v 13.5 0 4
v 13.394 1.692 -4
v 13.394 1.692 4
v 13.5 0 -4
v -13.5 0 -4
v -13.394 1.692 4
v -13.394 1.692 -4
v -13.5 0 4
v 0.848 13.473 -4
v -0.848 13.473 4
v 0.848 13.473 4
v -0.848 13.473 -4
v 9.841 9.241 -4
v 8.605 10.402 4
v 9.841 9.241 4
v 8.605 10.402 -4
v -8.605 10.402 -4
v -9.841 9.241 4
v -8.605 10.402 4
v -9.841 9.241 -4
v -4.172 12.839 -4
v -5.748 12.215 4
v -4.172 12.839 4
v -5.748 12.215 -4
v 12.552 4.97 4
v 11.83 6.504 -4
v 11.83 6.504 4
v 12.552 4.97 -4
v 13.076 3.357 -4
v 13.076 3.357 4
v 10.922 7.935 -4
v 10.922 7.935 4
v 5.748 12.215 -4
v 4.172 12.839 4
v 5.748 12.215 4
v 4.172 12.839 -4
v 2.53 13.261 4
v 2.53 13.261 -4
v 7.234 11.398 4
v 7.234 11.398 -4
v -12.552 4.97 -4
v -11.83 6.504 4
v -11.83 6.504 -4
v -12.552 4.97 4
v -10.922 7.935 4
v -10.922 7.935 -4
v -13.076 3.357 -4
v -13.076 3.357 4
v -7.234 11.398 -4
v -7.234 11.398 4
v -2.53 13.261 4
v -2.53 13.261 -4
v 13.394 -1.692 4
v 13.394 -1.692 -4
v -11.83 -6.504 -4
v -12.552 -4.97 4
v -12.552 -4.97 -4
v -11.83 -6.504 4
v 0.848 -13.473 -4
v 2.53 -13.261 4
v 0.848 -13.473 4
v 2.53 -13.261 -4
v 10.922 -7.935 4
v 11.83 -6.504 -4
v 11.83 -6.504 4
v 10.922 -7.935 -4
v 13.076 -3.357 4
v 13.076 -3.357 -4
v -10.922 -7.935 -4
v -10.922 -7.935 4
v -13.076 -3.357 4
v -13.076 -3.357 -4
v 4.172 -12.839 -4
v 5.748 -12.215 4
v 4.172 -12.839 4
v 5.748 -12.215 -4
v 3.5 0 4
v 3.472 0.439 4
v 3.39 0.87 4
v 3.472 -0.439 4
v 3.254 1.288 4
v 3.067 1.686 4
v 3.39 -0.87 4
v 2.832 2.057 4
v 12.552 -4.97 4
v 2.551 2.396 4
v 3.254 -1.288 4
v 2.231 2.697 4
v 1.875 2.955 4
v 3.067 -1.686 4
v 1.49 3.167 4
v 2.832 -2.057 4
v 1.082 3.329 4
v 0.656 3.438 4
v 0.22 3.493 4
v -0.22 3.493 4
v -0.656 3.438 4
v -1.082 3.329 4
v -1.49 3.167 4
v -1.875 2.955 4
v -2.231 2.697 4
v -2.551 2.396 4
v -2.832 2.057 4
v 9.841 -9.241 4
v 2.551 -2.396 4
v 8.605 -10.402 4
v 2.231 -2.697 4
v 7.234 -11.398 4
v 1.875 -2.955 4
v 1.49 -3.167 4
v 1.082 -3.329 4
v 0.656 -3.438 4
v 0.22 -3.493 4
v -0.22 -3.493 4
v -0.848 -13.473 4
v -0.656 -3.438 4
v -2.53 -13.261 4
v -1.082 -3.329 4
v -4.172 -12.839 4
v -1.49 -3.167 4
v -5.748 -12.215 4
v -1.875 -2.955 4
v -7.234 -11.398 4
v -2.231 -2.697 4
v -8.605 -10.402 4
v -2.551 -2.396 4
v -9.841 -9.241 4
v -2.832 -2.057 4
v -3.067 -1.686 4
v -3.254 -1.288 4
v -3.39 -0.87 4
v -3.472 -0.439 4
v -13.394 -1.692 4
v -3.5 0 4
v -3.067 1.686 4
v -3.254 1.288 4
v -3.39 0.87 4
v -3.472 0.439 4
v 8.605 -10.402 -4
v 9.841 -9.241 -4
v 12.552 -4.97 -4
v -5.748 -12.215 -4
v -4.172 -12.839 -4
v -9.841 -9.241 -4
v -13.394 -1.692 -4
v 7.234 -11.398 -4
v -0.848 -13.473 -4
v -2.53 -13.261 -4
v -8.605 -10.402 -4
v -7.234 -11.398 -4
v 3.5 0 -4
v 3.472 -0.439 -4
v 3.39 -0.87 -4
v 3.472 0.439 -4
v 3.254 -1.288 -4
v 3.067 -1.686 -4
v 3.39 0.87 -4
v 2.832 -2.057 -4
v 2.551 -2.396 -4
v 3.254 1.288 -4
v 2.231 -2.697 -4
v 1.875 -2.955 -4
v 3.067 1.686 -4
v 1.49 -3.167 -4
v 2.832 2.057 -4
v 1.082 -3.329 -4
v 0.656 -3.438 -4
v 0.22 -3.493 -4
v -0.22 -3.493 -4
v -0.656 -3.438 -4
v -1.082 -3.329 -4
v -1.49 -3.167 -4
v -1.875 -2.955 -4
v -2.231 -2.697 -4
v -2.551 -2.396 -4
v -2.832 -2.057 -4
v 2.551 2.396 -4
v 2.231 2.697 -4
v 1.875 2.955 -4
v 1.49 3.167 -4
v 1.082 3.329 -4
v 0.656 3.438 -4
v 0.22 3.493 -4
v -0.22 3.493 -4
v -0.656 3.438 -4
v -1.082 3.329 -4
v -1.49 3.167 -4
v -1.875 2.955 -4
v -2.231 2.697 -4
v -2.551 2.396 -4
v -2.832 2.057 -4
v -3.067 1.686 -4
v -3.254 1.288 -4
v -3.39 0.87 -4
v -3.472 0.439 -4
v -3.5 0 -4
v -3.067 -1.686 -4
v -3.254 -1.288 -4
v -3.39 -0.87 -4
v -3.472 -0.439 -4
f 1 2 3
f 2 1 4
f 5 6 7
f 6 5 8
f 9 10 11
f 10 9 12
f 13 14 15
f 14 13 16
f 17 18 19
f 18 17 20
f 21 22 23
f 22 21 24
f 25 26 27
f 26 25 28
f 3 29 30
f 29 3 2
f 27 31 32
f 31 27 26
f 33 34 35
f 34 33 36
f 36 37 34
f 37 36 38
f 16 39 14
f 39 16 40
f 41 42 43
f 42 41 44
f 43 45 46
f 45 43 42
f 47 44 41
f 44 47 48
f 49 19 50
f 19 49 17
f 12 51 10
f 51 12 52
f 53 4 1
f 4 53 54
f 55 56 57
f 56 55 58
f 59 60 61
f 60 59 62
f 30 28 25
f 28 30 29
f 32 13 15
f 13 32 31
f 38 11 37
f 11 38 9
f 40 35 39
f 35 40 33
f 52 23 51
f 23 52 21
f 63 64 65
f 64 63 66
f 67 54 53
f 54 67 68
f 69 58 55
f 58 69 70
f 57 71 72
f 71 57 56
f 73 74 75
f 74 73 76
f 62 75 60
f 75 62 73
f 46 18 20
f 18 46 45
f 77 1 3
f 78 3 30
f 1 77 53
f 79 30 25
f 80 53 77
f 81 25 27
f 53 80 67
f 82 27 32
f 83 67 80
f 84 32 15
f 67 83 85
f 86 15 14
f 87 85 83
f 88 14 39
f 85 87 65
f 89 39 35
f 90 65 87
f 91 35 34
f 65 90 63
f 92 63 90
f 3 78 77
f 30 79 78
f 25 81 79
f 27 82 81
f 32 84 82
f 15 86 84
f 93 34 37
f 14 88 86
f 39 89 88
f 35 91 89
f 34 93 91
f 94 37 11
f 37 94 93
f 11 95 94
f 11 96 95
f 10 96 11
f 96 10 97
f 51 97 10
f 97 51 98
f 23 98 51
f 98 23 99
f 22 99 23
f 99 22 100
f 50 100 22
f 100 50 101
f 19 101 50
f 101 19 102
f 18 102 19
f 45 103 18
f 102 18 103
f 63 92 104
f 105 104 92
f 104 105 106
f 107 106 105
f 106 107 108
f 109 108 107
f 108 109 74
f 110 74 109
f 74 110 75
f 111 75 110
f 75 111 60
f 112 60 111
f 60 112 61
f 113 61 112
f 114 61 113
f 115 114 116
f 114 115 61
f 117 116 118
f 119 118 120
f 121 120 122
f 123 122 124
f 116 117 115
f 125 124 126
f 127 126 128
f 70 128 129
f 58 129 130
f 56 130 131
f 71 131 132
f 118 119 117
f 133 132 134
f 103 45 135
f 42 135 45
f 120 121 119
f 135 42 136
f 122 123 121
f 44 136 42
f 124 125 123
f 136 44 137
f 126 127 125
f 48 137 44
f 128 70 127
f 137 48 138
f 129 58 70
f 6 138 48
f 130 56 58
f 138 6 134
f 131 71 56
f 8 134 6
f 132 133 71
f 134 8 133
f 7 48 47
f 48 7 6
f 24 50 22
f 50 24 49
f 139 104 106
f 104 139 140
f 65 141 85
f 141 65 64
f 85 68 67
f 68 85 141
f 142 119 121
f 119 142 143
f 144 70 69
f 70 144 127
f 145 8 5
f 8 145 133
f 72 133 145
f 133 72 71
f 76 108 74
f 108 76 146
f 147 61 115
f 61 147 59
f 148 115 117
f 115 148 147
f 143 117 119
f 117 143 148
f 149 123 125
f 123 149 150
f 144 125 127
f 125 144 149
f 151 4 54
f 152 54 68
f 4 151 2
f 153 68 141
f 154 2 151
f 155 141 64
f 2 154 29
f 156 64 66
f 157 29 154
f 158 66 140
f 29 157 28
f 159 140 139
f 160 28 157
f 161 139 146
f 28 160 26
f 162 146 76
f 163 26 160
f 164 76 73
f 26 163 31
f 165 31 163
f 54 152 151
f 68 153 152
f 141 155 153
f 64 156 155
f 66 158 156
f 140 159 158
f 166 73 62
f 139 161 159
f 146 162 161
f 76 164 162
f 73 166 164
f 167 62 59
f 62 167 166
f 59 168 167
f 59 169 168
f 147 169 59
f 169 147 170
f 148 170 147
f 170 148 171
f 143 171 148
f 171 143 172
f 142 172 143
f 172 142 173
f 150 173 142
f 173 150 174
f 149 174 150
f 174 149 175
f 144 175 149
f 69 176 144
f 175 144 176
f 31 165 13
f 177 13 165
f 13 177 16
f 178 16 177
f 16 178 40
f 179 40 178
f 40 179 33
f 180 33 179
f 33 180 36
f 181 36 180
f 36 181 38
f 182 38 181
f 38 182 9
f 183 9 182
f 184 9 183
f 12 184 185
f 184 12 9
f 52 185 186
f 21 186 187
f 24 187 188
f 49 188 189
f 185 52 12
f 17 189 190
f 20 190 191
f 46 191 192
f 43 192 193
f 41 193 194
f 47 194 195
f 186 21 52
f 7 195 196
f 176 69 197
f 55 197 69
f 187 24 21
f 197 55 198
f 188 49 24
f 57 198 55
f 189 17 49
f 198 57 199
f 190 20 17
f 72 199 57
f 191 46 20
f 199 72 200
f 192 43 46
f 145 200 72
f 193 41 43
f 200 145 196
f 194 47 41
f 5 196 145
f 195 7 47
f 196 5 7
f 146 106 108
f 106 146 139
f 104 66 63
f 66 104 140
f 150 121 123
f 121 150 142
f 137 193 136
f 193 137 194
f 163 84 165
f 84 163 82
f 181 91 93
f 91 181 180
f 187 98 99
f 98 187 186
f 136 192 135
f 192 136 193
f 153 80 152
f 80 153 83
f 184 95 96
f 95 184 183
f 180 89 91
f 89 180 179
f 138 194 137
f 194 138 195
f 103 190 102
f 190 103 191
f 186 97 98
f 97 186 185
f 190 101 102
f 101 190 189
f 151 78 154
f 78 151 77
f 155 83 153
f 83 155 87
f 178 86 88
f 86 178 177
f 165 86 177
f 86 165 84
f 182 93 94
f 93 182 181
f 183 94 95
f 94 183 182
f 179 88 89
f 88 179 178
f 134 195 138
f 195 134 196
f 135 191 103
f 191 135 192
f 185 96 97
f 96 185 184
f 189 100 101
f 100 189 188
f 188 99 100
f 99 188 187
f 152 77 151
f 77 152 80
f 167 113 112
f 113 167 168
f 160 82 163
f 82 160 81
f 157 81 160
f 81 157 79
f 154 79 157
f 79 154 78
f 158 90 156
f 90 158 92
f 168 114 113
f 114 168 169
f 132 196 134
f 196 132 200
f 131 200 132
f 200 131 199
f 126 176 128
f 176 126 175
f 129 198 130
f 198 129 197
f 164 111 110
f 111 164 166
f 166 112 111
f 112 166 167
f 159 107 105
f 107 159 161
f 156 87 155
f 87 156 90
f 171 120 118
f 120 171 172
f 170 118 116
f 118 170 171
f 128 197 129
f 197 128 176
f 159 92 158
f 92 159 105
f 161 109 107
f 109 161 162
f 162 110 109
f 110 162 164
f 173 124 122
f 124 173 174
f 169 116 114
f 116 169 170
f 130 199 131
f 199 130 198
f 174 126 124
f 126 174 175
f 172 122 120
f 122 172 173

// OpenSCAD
$fn = 50;


difference() {
	union() {
		translate(v = [0, 0, -4.0000000000]) {
			cylinder(h = 8, r = 13.5000000000);
		}
	}
	union() {
		translate(v = [0, 0, -100.0000000000]) {
			cylinder(h = 200, r = 3.5000000000);
		}
	}
}
